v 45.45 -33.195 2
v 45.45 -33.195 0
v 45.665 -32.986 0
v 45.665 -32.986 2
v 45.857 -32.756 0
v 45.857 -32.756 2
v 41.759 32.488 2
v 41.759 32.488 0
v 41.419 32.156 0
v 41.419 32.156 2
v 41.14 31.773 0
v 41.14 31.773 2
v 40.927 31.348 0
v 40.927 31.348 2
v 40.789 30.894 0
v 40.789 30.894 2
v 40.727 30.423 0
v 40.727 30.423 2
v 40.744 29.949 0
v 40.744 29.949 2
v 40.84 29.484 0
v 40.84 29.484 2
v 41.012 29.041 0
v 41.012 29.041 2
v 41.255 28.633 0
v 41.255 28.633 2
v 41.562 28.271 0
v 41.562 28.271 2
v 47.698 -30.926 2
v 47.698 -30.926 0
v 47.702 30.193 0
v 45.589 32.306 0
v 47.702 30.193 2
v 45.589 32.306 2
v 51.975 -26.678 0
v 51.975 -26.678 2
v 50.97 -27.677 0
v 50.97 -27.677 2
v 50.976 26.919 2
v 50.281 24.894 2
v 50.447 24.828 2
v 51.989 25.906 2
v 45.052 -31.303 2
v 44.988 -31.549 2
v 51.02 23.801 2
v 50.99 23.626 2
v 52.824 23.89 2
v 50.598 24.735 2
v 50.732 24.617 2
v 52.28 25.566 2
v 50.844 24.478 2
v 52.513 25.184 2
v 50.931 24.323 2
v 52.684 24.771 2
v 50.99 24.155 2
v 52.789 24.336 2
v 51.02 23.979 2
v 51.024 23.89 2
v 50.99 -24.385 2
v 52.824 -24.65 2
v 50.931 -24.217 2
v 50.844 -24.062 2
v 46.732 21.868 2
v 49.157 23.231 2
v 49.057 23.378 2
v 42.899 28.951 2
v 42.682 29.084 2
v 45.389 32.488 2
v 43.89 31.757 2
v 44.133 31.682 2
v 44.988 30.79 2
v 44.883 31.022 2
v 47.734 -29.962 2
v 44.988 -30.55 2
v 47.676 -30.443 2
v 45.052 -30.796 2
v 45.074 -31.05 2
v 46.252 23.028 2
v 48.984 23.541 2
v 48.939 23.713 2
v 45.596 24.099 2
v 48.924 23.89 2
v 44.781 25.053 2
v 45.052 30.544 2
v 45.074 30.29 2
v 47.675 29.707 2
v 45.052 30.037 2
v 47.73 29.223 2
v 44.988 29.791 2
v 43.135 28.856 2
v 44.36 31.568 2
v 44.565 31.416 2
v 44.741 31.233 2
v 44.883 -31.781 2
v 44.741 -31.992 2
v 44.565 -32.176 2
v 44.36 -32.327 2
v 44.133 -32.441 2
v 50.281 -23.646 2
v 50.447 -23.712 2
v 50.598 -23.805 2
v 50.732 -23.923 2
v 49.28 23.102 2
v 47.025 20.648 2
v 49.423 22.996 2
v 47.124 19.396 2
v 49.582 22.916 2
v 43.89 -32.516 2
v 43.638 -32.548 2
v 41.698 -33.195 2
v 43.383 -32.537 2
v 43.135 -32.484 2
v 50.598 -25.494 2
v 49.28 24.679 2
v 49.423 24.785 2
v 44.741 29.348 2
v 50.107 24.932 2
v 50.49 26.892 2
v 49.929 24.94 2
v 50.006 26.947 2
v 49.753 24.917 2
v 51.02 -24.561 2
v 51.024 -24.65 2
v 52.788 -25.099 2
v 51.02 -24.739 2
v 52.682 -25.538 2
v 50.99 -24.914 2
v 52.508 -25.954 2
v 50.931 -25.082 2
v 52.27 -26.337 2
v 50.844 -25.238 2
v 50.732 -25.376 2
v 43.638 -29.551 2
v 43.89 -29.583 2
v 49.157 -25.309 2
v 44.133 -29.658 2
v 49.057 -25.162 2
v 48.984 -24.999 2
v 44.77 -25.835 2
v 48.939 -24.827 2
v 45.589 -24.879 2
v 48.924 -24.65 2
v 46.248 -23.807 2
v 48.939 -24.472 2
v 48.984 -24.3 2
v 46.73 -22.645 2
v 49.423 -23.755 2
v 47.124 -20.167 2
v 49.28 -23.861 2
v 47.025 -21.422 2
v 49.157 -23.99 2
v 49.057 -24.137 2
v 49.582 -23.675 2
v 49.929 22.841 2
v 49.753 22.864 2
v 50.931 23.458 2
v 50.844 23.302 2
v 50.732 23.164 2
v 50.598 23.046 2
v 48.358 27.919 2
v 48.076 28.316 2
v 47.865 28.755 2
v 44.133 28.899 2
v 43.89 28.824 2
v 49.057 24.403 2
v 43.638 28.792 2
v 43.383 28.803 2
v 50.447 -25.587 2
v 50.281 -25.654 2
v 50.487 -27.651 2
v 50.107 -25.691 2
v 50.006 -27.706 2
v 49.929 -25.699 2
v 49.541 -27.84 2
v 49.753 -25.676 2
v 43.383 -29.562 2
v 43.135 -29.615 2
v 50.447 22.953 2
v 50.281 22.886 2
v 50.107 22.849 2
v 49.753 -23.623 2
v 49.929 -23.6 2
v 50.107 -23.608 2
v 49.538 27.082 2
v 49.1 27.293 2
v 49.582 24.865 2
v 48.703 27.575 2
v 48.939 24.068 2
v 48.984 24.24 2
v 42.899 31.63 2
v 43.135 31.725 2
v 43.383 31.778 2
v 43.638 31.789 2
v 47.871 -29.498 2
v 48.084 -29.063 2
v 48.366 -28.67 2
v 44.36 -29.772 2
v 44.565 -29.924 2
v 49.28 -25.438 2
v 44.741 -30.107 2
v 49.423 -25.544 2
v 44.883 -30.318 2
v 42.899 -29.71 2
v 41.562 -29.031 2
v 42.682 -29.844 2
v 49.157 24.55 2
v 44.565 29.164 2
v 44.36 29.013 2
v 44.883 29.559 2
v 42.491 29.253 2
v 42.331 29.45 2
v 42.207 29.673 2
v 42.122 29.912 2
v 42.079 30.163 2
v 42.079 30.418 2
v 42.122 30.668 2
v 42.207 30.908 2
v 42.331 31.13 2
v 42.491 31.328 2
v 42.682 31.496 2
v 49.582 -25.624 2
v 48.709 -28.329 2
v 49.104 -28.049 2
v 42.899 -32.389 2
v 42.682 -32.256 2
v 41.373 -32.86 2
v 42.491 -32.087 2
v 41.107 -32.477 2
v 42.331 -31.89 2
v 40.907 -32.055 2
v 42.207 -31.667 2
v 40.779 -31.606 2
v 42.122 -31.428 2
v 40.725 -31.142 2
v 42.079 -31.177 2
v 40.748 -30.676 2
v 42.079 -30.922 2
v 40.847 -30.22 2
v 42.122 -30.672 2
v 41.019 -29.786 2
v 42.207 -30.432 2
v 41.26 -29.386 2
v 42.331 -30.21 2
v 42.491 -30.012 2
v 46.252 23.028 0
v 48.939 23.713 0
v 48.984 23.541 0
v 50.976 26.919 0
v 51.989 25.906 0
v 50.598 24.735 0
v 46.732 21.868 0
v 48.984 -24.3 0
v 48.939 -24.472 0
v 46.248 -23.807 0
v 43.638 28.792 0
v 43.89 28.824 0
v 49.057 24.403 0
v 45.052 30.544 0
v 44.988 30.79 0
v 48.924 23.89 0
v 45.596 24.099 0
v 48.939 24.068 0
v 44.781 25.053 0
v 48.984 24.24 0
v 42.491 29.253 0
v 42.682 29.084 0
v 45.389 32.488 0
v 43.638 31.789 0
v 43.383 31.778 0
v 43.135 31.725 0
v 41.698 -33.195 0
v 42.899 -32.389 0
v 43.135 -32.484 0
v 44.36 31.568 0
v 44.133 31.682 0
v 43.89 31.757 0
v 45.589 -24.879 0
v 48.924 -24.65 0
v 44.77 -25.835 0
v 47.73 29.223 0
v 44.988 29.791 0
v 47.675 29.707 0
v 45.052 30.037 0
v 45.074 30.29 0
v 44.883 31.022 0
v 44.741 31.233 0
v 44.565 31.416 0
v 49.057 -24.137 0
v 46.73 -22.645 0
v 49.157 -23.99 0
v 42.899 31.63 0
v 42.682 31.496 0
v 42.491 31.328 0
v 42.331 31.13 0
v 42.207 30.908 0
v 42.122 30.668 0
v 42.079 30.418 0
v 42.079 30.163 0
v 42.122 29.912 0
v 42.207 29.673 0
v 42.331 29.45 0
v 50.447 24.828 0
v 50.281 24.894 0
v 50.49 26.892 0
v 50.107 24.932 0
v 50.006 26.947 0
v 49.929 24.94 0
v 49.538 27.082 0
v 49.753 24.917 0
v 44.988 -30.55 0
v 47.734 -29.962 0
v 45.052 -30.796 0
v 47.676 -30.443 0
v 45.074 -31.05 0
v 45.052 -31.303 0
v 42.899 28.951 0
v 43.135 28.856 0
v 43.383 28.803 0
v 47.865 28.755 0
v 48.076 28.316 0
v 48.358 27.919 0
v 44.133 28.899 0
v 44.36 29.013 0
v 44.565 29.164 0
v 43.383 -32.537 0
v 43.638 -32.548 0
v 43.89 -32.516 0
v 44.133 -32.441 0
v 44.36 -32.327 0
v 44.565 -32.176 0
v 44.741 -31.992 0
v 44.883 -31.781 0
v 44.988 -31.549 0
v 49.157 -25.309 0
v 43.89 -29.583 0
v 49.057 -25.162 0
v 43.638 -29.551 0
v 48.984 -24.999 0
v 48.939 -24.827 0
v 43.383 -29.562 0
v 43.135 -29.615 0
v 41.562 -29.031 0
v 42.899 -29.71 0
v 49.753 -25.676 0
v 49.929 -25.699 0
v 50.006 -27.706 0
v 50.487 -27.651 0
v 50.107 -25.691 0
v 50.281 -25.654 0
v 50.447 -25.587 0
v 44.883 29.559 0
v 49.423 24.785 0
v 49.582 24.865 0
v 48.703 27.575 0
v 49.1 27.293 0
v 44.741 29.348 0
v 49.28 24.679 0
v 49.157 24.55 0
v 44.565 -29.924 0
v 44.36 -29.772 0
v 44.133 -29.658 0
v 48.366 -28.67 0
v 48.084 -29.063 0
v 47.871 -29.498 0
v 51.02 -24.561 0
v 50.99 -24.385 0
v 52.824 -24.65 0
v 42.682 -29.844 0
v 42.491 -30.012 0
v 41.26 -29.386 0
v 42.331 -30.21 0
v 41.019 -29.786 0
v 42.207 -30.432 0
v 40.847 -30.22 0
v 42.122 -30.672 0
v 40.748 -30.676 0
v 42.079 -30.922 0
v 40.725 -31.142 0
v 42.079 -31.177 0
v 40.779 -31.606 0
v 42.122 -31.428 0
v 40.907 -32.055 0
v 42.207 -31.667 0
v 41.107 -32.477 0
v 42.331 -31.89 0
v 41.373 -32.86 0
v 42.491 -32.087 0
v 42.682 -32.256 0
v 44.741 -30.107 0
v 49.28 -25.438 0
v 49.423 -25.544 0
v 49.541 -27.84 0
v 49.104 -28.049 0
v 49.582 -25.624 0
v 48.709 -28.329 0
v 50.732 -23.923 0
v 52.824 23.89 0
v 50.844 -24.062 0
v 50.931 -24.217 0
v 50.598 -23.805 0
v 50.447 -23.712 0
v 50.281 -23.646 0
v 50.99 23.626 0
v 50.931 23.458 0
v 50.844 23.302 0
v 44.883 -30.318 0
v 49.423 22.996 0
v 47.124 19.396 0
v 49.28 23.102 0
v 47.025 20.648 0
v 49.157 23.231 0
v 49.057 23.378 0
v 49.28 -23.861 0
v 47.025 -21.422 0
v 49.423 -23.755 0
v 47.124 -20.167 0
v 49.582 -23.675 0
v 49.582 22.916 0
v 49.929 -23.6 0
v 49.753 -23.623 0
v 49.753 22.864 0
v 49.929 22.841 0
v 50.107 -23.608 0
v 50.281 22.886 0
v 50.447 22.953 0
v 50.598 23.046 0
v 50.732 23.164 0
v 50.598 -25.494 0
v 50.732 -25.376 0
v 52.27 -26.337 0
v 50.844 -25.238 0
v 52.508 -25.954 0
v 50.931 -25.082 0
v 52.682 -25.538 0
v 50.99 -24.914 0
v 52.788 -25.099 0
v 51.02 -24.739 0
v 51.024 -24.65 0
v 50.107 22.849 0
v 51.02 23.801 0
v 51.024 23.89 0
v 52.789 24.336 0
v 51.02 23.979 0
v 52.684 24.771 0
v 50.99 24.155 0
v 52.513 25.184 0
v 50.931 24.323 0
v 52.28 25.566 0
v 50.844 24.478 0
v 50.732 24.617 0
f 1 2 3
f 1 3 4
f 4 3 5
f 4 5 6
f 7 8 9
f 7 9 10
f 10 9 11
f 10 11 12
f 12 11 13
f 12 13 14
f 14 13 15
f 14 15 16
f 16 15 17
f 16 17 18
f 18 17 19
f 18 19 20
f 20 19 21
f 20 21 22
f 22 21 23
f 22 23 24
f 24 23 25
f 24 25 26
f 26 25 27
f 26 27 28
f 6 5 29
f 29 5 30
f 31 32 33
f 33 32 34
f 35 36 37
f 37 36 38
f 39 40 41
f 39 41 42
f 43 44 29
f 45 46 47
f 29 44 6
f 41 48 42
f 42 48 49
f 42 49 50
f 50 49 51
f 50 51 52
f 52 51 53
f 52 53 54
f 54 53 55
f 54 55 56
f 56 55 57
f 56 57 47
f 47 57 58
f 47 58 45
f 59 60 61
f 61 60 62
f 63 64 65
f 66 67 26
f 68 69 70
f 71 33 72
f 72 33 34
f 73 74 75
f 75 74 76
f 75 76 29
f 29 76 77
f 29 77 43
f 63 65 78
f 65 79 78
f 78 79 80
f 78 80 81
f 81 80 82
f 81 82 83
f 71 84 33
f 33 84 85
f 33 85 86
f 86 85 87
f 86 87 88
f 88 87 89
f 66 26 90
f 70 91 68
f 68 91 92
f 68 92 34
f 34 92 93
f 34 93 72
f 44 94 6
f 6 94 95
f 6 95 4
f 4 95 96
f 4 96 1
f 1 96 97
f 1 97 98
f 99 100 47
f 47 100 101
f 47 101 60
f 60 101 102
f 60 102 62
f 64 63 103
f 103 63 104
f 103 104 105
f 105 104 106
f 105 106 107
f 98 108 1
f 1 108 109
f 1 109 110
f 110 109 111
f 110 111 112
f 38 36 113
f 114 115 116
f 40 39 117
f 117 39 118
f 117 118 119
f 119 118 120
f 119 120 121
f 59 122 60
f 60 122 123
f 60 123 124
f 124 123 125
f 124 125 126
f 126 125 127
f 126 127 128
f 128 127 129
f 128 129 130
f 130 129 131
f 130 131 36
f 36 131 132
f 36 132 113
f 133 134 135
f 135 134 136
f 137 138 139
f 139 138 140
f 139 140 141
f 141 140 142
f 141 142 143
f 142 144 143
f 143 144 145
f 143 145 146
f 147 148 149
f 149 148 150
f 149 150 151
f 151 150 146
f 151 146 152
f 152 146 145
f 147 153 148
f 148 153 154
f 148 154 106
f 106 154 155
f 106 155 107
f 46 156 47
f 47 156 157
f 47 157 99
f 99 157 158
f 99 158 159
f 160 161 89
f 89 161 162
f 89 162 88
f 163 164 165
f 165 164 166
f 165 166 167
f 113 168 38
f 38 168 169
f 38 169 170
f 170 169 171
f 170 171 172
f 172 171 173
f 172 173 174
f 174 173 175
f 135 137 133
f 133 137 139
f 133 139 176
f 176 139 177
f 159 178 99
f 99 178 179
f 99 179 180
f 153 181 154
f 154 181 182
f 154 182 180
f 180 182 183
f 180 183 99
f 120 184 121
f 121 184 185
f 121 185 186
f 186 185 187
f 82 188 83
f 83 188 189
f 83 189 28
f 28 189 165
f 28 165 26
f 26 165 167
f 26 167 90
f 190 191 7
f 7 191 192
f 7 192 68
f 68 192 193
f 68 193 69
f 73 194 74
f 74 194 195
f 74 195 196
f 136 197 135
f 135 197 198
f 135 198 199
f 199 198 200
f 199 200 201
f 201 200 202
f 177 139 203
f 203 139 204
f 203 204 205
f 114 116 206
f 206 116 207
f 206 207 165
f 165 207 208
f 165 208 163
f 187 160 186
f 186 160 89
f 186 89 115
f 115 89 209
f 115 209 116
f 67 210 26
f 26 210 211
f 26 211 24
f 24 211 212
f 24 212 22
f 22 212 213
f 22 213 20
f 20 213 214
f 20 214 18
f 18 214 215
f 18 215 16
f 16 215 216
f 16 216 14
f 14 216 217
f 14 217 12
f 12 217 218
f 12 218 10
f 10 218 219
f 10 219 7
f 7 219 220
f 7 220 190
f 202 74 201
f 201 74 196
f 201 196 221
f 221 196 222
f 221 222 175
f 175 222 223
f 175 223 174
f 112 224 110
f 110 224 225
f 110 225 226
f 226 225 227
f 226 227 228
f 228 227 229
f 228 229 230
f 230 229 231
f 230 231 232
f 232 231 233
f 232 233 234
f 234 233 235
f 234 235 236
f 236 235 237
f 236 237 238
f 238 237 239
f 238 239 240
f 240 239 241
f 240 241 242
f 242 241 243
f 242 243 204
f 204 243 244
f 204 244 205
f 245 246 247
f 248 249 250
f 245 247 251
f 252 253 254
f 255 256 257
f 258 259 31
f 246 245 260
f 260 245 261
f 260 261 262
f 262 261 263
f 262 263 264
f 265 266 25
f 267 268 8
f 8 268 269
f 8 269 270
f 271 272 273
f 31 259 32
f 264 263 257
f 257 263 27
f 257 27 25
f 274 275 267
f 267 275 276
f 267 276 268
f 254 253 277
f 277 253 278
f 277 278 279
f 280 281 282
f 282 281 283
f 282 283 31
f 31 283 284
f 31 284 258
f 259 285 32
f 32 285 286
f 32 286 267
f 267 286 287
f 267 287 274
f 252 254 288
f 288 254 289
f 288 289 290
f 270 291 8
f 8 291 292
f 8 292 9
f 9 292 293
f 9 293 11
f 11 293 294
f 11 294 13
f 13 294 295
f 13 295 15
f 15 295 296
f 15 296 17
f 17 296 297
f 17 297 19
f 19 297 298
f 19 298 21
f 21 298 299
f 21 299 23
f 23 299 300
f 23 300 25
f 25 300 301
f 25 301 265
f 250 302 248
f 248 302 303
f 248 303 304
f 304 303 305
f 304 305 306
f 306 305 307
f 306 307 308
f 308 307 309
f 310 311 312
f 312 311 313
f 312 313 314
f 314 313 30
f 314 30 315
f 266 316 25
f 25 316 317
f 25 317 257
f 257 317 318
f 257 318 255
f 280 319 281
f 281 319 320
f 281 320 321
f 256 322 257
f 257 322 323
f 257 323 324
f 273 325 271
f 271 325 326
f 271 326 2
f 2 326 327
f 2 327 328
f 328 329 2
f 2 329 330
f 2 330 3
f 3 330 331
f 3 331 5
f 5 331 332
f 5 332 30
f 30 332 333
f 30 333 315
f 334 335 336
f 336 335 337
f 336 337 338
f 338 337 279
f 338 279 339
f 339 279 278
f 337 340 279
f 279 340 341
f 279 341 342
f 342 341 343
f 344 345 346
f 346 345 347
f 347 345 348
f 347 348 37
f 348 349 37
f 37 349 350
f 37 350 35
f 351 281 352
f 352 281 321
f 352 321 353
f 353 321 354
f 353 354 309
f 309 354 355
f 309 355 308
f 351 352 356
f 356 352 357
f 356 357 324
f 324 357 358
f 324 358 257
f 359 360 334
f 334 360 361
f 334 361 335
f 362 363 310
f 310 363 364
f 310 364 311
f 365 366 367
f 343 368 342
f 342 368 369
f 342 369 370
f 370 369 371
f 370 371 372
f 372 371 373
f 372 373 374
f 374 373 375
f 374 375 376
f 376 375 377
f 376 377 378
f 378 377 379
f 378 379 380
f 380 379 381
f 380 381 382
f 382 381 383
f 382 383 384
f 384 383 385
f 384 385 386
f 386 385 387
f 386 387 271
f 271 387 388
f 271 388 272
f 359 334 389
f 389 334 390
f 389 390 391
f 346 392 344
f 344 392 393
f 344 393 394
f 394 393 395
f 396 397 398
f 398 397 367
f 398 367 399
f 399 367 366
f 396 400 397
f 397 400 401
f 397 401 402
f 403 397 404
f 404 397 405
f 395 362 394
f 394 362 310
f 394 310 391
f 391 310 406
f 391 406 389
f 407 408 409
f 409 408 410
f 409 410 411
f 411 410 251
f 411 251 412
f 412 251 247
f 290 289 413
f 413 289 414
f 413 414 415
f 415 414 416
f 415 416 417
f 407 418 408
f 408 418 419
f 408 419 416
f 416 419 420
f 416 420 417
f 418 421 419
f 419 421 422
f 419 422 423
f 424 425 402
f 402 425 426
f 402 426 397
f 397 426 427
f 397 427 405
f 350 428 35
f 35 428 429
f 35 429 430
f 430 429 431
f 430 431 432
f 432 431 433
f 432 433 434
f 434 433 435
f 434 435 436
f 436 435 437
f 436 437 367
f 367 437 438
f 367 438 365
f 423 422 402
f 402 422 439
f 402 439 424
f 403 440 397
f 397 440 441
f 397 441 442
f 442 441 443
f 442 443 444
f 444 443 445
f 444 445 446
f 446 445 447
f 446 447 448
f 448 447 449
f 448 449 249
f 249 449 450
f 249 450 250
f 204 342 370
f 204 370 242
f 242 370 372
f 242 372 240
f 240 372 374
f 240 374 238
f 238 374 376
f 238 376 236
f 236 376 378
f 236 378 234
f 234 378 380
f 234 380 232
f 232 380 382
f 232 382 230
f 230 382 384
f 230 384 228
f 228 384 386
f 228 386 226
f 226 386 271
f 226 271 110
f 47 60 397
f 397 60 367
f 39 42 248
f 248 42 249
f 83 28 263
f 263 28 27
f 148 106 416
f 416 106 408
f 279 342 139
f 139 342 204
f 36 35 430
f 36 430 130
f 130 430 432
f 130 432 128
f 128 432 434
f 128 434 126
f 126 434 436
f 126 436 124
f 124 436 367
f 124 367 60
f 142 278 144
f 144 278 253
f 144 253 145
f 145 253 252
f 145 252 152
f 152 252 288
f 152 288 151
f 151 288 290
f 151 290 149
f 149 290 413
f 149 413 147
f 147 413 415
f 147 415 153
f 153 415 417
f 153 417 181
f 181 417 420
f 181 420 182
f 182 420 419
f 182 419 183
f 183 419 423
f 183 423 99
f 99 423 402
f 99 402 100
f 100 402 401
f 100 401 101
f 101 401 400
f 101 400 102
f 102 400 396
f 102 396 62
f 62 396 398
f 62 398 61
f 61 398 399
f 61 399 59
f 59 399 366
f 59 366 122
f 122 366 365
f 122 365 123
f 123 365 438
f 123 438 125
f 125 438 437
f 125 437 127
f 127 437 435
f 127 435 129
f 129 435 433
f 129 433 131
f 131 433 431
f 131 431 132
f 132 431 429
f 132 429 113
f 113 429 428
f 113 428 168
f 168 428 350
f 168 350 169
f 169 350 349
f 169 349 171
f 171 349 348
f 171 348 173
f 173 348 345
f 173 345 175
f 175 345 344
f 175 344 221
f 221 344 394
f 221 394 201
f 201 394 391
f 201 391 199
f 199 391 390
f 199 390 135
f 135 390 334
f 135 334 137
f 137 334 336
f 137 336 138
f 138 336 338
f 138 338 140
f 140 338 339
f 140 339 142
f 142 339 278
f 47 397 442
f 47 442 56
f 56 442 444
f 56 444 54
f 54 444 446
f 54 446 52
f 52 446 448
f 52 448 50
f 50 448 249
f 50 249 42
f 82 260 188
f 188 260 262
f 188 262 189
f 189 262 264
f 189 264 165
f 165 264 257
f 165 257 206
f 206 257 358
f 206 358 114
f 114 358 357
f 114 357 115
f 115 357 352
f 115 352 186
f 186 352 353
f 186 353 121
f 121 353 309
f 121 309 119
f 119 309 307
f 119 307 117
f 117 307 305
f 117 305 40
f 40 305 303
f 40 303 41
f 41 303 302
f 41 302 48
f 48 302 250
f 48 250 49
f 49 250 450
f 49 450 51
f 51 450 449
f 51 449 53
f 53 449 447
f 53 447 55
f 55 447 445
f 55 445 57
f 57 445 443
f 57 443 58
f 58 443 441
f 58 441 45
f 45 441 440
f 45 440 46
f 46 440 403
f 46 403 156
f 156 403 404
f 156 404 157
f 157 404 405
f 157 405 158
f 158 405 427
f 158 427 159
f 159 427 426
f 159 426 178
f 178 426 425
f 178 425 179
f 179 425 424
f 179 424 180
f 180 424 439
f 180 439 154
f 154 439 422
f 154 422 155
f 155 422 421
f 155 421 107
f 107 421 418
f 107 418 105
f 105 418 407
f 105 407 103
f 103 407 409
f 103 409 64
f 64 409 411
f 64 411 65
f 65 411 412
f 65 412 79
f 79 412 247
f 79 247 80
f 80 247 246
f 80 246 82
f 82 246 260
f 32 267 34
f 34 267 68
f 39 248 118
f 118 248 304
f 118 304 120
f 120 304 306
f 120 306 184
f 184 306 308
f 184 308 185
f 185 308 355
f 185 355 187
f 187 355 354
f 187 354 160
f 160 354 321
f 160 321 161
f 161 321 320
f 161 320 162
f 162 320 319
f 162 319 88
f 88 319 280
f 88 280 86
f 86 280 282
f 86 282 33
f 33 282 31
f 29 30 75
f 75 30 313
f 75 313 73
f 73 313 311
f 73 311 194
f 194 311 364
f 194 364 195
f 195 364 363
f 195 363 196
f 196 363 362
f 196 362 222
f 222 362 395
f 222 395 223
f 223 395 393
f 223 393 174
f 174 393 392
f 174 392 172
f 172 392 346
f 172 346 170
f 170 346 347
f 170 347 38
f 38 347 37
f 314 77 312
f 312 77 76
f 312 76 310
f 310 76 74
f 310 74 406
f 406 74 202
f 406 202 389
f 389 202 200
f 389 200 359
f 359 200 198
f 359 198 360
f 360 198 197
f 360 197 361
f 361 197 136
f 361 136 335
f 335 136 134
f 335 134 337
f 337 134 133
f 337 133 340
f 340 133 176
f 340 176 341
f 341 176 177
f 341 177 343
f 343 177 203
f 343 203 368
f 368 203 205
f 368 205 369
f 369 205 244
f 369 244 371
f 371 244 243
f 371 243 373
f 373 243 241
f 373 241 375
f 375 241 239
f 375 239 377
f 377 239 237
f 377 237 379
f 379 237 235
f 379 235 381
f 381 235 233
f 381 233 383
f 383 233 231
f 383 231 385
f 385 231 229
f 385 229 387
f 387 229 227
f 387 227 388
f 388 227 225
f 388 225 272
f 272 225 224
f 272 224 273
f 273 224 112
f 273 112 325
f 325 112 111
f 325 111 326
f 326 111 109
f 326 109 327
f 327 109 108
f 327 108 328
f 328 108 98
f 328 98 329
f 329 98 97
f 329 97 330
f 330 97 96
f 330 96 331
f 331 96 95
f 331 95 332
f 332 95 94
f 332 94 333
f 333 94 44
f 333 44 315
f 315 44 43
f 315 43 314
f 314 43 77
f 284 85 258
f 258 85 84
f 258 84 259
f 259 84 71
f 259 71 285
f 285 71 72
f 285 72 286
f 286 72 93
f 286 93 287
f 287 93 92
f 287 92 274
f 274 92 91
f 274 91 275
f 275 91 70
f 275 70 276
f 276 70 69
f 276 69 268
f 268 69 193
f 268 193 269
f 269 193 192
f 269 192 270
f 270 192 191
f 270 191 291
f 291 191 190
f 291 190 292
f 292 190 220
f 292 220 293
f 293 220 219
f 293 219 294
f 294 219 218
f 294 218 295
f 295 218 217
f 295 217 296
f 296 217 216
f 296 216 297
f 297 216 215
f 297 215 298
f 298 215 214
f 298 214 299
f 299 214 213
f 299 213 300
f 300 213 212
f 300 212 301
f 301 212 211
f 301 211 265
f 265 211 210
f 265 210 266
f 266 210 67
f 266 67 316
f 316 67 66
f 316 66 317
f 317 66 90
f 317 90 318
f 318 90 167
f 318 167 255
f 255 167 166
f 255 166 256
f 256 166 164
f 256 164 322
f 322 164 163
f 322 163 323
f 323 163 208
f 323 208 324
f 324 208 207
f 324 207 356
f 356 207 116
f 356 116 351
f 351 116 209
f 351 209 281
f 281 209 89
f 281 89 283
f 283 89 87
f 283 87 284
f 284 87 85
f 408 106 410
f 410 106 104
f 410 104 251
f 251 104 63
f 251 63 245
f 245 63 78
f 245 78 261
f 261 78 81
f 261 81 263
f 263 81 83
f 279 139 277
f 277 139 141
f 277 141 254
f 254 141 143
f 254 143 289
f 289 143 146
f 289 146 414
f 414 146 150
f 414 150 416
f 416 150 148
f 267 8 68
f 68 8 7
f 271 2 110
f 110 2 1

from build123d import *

# Parameters (mm, degrees)
SKIZZE1_R                       = 2.85
SKIZZE1_R_2                     = 1.05
LINEAR_AUSTRAGEN_D_NN1_DEPTH    = 2
LINEAR_AUSTRAGEN_D_NN1_2_DEPTH  = 2
LINEAR_AUSTRAGEN_D_NN1_3_DEPTH  = 2
LINEAR_AUSTRAGEN_D_NN1_4_DEPTH  = 2
AUFSATZ_LINEAR_AUSTRAGEN1_DEPTH = 2
SKIZZE4_R                       = 2.9
SCHNITT_LINEAR_AUSTRAGEN1_DEPTH = 2
SKIZZE7_R                       = 1.5
SCHNITT_LINEAR_AUSTRAGEN3_DEPTH = 4.5
VERRUNDUNG3_R                   = 8
VERRUNDUNG4_R                   = 8
SKIZZE8_W                       = 8.364298592
SKIZZE8_H                       = 2.396021337
SKIZZE8_W_2                     = 8.747208858
SKIZZE8_H_2                     = 3.084567941
SCHNITT_LINEAR_AUSTRAGEN4_DEPTH = 10


with BuildPart() as part:
    # Skizze1 → Linear-Austragen-Dünn1 (new body)
    with BuildSketch(Plane.XY):
        with Locations((43.573867598, -31.049552882)):
            Circle(SKIZZE1_R)
        with Locations((43.573867598, -31.049552882)):
            Circle(SKIZZE1_R_2, mode=Mode.SUBTRACT)
    extrude(amount=LINEAR_AUSTRAGEN_D_NN1_DEPTH)



with BuildPart() as body_2:
    # Skizze1 → Linear-Austragen-D_nn1 2 (new body)
    with BuildSketch(Plane.XY):
        with Locations((49.973867598, -24.649552882)):
            Circle(SKIZZE1_R)
        with Locations((49.973867598, -24.649552882)):
            Circle(SKIZZE1_R_2, mode=Mode.SUBTRACT)
    extrude(amount=LINEAR_AUSTRAGEN_D_NN1_2_DEPTH)


with BuildPart() as body_3:
    # Skizze1 → Linear-Austragen-D_nn1 3 (new body)
    with BuildSketch(Plane.XY):
        with Locations((49.973867598, 23.890447118)):
            Circle(SKIZZE1_R)
        with Locations((49.973867598, 23.890447118)):
            Circle(SKIZZE1_R_2, mode=Mode.SUBTRACT)
    extrude(amount=LINEAR_AUSTRAGEN_D_NN1_3_DEPTH)


with BuildPart() as body_4:
    # Skizze1 → Linear-Austragen-D_nn1 4 (new body)
    with BuildSketch(Plane.XY):
        with Locations((43.573867598, 30.290447118)):
            Circle(SKIZZE1_R)
        with Locations((43.573867598, 30.290447118)):
            Circle(SKIZZE1_R_2, mode=Mode.SUBTRACT)
    extrude(amount=LINEAR_AUSTRAGEN_D_NN1_4_DEPTH)


with BuildPart() as part_1:
    add(part.part)

    add(body_2.part)  # Aufsatz-Linear austragen1 merges body 2

    add(body_3.part)  # Aufsatz-Linear austragen1 merges body 3

    add(body_4.part)  # Aufsatz-Linear austragen1 merges body 4
    # Skizze3 → Aufsatz-Linear austragen1 (add)
    with BuildSketch(Plane(origin=(0, 0, 0), x_dir=(-1, 0, 0), z_dir=(0, 0, -1))):
        Polygon((-41.562362318, -29.03055647), (-47.123867598, -23.489686183), (-47.123867598, -24.649552882), (-48.59326597, -26.13202553), (-51.989121924, -26.664807209), (-45.264844081, -33.343697283), (-44.884208679, -29.808371771), align=None)
        with BuildLine():
            Line((-47.123867598, 22.709939373), (-47.958612175, 21.875193888))
            ThreePointArc((-47.958612175, 21.875193888), (-51.064514663, 21.257390153), (-52.823867598, 23.890447118))
            Line((-52.823867598, 23.890447118), (-52.823867598, -24.649552882))
            Line((-52.823867598, -24.649552882), (-50.178691981, -22.827758624))
            Line((-50.178691981, -22.827758624), (-47.123867598, -24.649552882))
            Line((-47.123867598, -24.649552882), (-47.123867598, -23.489686183))
            Line((-47.123867598, -23.489686183), (-47.123867598, 22.709939373))
        make_face()
        with BuildLine():
            ThreePointArc((-47.123867598, 23.890447118), (-47.340810633, 22.799800052), (-47.958612175, 21.875193888))
            Line((-47.958612175, 21.875193888), (-47.123867598, 22.709939373))
            Line((-47.123867598, 22.709939373), (-41.562362318, 28.271450706))
            Line((-41.562362318, 28.271450706), (-44.884208679, 28.654046934))
            Line((-44.884208679, 28.654046934), (-45.589121924, 32.305701444))
            Line((-45.589121924, 32.305701444), (-51.989121924, 25.905701444))
            ThreePointArc((-51.989121924, 25.905701444), (-48.883219815, 26.523503785), (-47.123867598, 23.890447118))
        make_face()
    extrude(amount=-AUFSATZ_LINEAR_AUSTRAGEN1_DEPTH)

    # Skizze4 → Schnitt-Linear austragen1 (cut)
    with BuildSketch(Plane(origin=(0, 0, 0), x_dir=(-1, 0, 0), z_dir=(0, 0, -1))):
        with Locations((-50.573867598, 29.790447118)):
            Circle(SKIZZE4_R)
        with Locations((-50.573867598, -30.549552882)):
            Circle(SKIZZE4_R)
    extrude(amount=-SCHNITT_LINEAR_AUSTRAGEN1_DEPTH, mode=Mode.SUBTRACT)

    # Skizze7 → Schnitt-Linear austragen3 (cut)
    with BuildSketch(Plane.XY.offset(2)):
        with Locations((43.573867598, -31.049552882)):
            Circle(SKIZZE7_R)
        with Locations((43.573867598, 30.290447118)):
            Circle(SKIZZE7_R)
    extrude(amount=-SCHNITT_LINEAR_AUSTRAGEN3_DEPTH, mode=Mode.SUBTRACT)

    # Verrundung3
    verrundung3_edges = [part_1.edges().sort_by_distance(p)[0] for p in [
        (47.123867598, 22.709939373, 1),
    ]]
    fillet(verrundung3_edges, radius=VERRUNDUNG3_R)

    # Verrundung4
    verrundung4_edges = [part_1.edges().sort_by_distance(p)[0] for p in [
        (47.123867598, -23.489686183, 1),
    ]]
    fillet(verrundung4_edges, radius=VERRUNDUNG4_R)

    # Skizze8 → Schnitt-Linear austragen4 (cut)
    with BuildSketch(Plane(origin=(0, 0, 0), x_dir=(-1, 0, 0), z_dir=(0, 0, -1))):
        with Locations((-42.948718638, 33.685978487)):
            Rectangle(SKIZZE8_W, SKIZZE8_H)
        with Locations((-43.64204941, -34.737574597)):
            Rectangle(SKIZZE8_W_2, SKIZZE8_H_2)
    extrude(amount=-SCHNITT_LINEAR_AUSTRAGEN4_DEPTH, mode=Mode.SUBTRACT)


solid = part_1.part
